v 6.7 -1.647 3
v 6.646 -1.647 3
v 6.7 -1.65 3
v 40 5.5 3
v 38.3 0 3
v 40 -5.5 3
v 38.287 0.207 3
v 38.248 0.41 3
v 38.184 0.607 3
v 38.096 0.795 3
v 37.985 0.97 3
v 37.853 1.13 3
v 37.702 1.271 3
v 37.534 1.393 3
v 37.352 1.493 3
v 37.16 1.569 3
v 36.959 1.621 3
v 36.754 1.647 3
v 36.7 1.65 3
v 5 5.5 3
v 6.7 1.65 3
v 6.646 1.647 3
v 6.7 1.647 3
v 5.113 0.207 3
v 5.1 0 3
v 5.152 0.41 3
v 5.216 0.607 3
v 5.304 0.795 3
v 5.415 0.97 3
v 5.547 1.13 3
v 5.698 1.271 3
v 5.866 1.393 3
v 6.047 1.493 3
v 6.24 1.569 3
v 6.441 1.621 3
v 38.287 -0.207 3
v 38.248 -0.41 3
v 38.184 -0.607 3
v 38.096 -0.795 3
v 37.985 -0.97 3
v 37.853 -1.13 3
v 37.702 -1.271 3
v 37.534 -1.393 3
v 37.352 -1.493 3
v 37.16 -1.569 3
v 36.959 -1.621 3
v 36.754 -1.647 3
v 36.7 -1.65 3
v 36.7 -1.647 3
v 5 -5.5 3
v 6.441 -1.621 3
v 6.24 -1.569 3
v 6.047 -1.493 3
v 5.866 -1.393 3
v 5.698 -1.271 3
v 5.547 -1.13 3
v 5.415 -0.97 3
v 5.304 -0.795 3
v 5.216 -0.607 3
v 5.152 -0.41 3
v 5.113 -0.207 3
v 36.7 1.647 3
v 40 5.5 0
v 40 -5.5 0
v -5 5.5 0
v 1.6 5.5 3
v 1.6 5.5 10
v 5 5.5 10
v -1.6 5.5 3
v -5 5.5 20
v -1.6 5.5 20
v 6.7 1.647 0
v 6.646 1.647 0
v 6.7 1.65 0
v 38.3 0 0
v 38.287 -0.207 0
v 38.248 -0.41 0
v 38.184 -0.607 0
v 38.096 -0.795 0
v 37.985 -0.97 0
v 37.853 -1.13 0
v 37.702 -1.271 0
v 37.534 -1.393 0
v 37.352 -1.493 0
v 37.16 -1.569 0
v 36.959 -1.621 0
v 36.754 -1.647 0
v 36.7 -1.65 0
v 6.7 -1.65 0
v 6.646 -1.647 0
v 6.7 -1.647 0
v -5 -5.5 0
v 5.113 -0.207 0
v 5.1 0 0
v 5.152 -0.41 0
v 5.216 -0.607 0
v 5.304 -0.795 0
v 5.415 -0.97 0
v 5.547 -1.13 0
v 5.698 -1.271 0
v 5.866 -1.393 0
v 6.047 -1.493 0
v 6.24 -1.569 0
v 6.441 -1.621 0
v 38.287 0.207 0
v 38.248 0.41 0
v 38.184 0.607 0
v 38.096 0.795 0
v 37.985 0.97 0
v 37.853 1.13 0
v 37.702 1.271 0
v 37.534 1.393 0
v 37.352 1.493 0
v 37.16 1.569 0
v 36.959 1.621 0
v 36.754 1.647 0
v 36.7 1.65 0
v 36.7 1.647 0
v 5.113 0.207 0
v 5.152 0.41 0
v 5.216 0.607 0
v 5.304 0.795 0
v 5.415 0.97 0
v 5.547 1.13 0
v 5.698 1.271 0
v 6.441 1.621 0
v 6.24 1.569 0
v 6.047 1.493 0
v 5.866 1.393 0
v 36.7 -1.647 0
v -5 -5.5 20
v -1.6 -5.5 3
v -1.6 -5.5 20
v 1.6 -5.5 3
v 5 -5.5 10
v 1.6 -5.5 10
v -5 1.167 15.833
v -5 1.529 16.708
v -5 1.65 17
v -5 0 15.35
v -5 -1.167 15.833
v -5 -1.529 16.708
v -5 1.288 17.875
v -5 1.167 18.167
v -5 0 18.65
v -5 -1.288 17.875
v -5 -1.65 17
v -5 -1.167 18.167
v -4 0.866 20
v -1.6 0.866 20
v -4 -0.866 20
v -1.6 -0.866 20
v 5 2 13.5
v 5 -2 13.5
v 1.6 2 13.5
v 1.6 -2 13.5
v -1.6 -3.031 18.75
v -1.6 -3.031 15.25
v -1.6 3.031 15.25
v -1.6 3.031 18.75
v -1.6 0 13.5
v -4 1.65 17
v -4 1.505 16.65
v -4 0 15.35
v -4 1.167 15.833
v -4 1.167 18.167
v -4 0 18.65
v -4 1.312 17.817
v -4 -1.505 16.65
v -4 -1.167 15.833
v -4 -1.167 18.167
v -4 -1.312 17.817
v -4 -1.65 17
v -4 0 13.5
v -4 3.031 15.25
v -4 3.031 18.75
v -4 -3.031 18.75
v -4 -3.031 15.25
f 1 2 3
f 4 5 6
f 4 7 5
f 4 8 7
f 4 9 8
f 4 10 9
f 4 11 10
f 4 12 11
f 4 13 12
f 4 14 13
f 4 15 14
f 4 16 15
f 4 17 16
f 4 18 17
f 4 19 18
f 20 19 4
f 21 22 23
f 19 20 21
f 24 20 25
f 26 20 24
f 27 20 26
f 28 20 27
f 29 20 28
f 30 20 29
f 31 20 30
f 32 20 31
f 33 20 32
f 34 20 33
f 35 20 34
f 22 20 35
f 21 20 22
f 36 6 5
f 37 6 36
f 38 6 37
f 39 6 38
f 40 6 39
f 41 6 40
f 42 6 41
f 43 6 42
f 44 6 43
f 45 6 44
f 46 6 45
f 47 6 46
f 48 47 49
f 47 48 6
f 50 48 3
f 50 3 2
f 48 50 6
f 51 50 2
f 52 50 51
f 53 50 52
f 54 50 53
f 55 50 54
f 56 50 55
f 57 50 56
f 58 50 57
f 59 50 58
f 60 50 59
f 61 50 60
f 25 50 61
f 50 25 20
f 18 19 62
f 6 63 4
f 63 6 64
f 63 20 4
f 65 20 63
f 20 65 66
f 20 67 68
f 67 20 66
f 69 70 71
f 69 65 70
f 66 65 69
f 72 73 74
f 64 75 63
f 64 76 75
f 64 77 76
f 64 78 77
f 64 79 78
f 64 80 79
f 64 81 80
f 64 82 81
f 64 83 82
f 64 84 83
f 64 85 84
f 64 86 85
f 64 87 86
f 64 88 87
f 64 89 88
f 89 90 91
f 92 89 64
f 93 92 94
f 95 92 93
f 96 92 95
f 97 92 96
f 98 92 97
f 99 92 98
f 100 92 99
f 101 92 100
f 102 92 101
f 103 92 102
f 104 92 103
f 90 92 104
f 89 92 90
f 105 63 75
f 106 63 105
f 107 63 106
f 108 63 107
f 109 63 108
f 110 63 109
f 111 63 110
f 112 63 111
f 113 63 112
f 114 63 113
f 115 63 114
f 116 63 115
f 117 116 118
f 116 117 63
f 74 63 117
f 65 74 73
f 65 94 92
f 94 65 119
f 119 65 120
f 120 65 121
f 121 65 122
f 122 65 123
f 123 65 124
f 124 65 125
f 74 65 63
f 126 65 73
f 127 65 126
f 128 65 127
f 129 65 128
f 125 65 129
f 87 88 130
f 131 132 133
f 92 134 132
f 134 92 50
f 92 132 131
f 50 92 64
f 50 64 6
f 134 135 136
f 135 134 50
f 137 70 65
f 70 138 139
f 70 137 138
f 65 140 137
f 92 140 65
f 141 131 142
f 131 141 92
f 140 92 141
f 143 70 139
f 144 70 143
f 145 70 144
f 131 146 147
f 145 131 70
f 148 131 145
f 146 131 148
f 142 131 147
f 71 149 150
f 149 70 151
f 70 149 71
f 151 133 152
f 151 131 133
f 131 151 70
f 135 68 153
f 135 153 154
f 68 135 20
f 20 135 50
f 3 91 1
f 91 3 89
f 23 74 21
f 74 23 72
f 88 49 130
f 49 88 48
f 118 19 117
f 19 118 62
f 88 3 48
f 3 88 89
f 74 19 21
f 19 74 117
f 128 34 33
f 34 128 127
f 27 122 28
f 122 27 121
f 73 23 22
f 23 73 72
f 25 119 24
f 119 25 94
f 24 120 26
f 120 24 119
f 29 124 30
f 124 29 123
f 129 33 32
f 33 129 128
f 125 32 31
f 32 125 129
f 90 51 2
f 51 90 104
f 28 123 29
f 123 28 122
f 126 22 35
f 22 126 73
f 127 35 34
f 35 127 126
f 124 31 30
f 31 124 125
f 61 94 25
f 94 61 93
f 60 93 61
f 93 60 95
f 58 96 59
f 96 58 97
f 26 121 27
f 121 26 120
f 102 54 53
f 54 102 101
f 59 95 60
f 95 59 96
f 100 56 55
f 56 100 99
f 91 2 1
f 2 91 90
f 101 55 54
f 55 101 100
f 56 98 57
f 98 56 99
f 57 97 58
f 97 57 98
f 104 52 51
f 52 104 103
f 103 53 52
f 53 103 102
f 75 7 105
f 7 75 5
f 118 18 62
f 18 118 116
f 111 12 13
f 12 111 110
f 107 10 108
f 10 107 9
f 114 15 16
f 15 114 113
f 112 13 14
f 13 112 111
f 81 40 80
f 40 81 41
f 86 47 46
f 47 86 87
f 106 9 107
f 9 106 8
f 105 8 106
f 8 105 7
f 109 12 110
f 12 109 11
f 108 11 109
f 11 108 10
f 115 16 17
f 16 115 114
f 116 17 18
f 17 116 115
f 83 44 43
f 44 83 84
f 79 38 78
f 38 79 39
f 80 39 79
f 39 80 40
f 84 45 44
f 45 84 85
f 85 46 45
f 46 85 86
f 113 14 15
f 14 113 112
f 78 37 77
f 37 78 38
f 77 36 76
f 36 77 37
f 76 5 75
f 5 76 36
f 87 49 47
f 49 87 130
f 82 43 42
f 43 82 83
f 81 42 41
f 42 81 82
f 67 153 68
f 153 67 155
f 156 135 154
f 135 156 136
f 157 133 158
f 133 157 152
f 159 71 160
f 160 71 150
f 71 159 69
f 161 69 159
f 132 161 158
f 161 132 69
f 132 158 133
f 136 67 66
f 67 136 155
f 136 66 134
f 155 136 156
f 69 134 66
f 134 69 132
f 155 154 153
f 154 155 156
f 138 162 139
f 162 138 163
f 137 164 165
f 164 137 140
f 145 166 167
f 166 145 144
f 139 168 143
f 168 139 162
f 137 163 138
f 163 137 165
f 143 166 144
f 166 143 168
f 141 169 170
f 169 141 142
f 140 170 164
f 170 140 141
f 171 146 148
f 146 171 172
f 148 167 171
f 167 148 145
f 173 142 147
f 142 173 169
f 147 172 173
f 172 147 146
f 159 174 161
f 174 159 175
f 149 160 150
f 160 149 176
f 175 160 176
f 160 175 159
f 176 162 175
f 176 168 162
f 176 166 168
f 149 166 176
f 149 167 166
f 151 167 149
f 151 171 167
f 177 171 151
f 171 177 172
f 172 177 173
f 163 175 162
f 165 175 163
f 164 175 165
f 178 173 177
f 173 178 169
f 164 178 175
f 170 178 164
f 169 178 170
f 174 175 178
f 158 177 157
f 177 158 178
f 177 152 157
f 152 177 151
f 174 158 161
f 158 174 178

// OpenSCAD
// Robot DC-motor: sensor keyesIR - holder

// Vertical part.
h_vert = 40;
w_vert = 11;
d_vert =  3;

// Internal diameter of nut.
id_nut = 3.3;

// Out diameter of nut.
od_nut = 7;

// Height of nut.
h_nut = 4;

// Length and diameter of screws.
len_screw = 20;
dia_screw = 3.3;

// Horizontal part.
h_horiz = 10;
w_horiz = 11;
d_horiz =  20;

// Width of chassis.
w_chassis = 3.2;

// Vertical hole.
h_vhole = h_vert - 2*id_nut - (h_horiz - w_chassis)/2;
w_vhole = id_nut;
d_vhole =  10;

// Width of chassis.
w_chassis = 3.2;

// Horizontal hole.
h_hhole = w_chassis;
w_hhole = w_horiz+1;
d_hhole = d_horiz;

// Block of nut.
h_nut_hole = (h_horiz - w_chassis)/2 + 1;
w_nut_hole = w_horiz+1;
d_nut_hole = od_nut;


module solid_part() {
  union() {
// Vertical part.
    translate([h_vert/2, 0, d_vert/2])
      cube([h_vert, w_vert, d_vert], center = true);
    
// Horizontal part.
    translate([0, 0, d_horiz/2])
      cube([h_horiz, w_horiz, d_horiz], center = true);
  }    
}    

module  holes() {
    
  union() {    
// Vertical hole.
    translate([h_vhole/2 + id_nut + (h_horiz - w_chassis)/2, 0, d_vhole/2 - 0.5])  
      cube([h_vhole, w_vhole, d_vhole], center = true);
    translate([(h_vhole/2 + (h_horiz - w_chassis)/2-d_vhole-w_vhole/2),0,0])
        cylinder(r=w_vhole/2, h=d_vhole, center=true, $fn = 50);
    translate([(h_vhole/2 + (h_horiz - w_chassis)/2+d_vhole+w_vhole/2+ id_nut*2),0,0])
        cylinder(r=w_vhole/2, h=d_vhole, center=true, $fn = 50); 
     
    translate([0,w_vert/2,d_vert*2+4])
      rotate([45,0,0])
        cube([6,6,6]);
    translate([0,-w_vert/2,d_vert*2+4])
      rotate([45,0,0])
        cube([6,6,6]);
    
// Horizontal hole.
    translate([0, 0, d_horiz/2 + d_vert])
      cube([h_hhole, w_hhole, d_hhole], center = true);  

// Block of nut.
    translate([(h_horiz - w_chassis)/2, 0, d_horiz/2 + d_nut_hole])
      cube([h_nut_hole, w_nut_hole, d_nut_hole], center = true);  

// Screw hole.
    translate([0, 0, d_horiz/2 + d_nut_hole])
      rotate(a=[0,90,0])      
        cylinder(h = len_screw, r1 = dia_screw/2, r2 = dia_screw/2, $fn = 8, center = true);      
        

// Nut hole.
    translate([-h_nut/2, 0, d_horiz/2 + d_nut_hole])
      rotate(a=[ 0, 90, 0])      
        cylinder(h = h_nut, r1 = od_nut/2, r2 = od_nut/2, $fn = 6, center = true);      
  }      

}

difference() {
  solid_part();
  holes();  
} 
